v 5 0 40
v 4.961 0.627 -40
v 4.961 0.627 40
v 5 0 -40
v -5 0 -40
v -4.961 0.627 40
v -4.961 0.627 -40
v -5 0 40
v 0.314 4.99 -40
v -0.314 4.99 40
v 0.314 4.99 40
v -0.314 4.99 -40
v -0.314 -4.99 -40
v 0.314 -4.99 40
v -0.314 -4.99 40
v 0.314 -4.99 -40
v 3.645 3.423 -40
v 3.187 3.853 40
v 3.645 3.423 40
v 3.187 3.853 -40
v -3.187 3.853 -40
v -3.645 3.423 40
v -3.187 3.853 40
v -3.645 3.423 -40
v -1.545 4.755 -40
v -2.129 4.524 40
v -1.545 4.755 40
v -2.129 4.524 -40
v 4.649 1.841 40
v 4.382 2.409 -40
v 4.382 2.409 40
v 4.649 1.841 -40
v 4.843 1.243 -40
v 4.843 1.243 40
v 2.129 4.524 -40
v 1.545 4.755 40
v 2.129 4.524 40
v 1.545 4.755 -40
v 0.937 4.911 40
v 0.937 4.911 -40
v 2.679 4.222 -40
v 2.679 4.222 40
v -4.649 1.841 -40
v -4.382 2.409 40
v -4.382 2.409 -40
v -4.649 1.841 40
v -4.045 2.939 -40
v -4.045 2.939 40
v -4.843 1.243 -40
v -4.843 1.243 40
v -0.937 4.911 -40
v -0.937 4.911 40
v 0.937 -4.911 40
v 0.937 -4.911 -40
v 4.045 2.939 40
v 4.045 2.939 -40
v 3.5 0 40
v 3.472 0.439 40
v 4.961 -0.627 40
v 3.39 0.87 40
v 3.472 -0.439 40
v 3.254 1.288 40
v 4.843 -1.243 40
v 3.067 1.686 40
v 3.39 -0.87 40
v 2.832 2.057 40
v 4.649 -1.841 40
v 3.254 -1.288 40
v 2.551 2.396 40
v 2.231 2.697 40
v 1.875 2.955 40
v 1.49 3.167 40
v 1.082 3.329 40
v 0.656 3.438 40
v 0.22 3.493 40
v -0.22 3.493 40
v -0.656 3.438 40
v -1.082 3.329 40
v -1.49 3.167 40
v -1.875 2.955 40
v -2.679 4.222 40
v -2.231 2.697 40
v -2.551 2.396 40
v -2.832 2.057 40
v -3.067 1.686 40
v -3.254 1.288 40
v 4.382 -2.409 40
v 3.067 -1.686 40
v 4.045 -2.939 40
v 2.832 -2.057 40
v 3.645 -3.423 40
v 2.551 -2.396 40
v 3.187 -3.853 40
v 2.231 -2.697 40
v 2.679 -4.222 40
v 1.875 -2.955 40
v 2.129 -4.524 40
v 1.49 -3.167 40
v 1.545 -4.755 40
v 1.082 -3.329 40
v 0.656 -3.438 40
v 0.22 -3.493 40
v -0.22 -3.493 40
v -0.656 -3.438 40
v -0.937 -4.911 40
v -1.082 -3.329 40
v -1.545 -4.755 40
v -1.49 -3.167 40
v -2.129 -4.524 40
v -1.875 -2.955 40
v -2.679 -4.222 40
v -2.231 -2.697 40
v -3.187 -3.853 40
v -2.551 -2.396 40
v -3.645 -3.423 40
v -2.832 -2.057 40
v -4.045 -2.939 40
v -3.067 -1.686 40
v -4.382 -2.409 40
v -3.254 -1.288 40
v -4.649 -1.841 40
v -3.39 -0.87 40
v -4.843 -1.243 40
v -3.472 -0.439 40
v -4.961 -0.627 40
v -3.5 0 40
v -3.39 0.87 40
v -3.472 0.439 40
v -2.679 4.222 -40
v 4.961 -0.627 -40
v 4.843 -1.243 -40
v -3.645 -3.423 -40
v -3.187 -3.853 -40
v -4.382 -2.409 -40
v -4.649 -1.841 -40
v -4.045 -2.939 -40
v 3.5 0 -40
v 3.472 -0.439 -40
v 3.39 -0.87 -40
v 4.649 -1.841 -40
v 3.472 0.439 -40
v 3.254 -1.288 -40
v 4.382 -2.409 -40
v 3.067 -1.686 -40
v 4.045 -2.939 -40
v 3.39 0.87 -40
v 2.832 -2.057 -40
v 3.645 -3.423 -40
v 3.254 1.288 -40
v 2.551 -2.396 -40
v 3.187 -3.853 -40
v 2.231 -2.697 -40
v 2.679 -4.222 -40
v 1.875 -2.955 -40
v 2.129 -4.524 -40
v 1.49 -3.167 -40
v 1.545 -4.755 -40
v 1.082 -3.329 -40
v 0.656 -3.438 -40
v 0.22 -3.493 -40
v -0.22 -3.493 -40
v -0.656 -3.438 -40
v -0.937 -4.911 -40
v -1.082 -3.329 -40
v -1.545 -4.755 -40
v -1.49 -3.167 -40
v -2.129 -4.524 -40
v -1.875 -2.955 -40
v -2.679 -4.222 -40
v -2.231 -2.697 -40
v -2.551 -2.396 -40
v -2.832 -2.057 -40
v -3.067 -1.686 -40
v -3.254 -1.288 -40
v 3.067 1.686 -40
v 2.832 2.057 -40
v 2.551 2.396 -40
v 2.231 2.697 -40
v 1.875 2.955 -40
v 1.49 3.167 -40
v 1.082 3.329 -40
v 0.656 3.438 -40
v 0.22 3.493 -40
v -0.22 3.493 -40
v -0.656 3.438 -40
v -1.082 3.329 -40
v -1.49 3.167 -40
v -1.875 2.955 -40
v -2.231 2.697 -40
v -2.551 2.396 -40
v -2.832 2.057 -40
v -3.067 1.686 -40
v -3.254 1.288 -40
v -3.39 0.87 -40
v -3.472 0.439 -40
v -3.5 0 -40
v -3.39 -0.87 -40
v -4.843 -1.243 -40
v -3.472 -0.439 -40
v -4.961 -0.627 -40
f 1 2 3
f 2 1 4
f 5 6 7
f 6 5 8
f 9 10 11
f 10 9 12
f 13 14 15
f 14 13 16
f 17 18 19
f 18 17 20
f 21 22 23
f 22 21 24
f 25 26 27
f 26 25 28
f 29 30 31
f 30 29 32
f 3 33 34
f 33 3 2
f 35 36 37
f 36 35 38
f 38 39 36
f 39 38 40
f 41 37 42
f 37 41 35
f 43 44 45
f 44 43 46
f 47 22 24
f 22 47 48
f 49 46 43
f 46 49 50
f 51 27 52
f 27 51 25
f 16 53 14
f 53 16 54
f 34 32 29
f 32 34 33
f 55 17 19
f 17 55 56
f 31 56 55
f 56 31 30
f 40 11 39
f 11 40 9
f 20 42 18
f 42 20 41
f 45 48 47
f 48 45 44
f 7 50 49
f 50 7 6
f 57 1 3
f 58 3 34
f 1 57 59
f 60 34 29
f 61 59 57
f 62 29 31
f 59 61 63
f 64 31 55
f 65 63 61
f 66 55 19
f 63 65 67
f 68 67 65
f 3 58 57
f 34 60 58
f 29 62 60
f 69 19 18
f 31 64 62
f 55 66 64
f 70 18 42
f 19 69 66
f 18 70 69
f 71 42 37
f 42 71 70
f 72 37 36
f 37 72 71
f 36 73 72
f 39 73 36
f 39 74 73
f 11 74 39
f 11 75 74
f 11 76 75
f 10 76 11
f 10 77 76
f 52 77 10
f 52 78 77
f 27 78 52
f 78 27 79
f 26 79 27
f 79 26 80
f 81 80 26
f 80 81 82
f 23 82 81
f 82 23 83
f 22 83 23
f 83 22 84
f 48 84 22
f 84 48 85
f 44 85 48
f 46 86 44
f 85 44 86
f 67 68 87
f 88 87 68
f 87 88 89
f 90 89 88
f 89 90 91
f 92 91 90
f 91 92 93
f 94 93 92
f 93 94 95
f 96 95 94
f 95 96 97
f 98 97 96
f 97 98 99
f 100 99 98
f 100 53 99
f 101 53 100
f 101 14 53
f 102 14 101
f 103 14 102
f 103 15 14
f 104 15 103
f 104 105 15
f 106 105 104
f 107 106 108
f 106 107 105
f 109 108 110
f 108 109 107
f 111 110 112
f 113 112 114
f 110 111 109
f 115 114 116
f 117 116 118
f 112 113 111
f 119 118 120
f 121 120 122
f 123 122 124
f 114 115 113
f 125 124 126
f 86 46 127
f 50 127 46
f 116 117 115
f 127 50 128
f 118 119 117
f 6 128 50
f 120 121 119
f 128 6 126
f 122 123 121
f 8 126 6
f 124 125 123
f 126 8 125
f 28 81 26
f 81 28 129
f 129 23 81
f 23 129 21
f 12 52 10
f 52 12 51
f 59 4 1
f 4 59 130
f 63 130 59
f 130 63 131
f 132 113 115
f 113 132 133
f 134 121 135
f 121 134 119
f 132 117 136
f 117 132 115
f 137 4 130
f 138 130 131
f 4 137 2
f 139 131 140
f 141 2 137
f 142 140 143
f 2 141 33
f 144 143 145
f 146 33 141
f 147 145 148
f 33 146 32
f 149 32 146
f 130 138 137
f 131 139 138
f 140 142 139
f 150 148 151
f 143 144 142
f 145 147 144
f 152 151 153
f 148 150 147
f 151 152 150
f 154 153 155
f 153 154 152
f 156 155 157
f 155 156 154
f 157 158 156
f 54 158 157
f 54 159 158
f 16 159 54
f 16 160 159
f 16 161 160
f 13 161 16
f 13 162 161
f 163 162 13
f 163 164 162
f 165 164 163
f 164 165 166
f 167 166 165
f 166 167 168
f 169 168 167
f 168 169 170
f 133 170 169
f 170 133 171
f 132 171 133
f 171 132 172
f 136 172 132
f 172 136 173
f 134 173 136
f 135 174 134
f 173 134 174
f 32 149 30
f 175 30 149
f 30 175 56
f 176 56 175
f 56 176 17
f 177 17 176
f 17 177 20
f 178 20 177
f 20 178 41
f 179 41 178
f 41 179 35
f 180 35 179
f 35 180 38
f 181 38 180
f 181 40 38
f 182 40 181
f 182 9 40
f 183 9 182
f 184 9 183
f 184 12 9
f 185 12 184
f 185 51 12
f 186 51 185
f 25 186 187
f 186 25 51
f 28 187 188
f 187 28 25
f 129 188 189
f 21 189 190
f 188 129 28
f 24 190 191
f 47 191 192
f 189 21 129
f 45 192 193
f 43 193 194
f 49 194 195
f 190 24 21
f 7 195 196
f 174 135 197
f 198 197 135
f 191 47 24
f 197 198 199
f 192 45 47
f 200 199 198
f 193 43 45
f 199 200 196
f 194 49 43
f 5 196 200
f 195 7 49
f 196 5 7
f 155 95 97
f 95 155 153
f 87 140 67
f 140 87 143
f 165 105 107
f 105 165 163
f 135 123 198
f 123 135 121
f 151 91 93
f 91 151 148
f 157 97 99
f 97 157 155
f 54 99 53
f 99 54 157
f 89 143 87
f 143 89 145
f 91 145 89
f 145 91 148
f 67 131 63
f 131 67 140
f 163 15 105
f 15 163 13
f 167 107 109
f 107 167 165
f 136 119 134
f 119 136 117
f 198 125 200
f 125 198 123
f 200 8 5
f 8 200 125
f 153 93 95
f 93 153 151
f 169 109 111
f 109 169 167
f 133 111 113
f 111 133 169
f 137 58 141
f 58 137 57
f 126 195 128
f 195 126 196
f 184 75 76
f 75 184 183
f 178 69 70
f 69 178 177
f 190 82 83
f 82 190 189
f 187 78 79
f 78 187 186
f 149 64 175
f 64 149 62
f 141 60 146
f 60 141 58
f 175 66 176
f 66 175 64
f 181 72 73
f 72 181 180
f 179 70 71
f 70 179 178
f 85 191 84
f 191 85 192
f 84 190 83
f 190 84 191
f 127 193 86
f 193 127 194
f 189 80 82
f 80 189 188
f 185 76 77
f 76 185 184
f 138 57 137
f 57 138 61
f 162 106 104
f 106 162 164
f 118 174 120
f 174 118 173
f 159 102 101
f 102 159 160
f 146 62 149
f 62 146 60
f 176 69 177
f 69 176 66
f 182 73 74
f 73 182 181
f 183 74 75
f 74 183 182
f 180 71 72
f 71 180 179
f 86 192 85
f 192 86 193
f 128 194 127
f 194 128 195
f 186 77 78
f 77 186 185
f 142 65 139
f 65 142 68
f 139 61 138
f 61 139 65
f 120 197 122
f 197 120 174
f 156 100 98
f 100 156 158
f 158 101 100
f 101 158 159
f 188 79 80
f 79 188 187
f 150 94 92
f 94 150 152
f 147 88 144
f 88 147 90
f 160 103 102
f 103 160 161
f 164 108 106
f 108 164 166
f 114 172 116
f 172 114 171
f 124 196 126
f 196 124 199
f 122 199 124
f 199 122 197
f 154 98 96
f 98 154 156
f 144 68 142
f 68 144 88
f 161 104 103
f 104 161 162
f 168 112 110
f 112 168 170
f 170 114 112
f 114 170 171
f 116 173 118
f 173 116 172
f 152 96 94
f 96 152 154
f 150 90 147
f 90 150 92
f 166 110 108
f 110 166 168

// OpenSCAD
$fn = 50;


difference() {
	union() {
		translate(v = [0, 0, -40.0000000000]) {
			cylinder(h = 80, r = 5.0000000000);
		}
	}
	union() {
		translate(v = [0, 0, -100.0000000000]) {
			cylinder(h = 200, r = 3.5000000000);
		}
	}
}
